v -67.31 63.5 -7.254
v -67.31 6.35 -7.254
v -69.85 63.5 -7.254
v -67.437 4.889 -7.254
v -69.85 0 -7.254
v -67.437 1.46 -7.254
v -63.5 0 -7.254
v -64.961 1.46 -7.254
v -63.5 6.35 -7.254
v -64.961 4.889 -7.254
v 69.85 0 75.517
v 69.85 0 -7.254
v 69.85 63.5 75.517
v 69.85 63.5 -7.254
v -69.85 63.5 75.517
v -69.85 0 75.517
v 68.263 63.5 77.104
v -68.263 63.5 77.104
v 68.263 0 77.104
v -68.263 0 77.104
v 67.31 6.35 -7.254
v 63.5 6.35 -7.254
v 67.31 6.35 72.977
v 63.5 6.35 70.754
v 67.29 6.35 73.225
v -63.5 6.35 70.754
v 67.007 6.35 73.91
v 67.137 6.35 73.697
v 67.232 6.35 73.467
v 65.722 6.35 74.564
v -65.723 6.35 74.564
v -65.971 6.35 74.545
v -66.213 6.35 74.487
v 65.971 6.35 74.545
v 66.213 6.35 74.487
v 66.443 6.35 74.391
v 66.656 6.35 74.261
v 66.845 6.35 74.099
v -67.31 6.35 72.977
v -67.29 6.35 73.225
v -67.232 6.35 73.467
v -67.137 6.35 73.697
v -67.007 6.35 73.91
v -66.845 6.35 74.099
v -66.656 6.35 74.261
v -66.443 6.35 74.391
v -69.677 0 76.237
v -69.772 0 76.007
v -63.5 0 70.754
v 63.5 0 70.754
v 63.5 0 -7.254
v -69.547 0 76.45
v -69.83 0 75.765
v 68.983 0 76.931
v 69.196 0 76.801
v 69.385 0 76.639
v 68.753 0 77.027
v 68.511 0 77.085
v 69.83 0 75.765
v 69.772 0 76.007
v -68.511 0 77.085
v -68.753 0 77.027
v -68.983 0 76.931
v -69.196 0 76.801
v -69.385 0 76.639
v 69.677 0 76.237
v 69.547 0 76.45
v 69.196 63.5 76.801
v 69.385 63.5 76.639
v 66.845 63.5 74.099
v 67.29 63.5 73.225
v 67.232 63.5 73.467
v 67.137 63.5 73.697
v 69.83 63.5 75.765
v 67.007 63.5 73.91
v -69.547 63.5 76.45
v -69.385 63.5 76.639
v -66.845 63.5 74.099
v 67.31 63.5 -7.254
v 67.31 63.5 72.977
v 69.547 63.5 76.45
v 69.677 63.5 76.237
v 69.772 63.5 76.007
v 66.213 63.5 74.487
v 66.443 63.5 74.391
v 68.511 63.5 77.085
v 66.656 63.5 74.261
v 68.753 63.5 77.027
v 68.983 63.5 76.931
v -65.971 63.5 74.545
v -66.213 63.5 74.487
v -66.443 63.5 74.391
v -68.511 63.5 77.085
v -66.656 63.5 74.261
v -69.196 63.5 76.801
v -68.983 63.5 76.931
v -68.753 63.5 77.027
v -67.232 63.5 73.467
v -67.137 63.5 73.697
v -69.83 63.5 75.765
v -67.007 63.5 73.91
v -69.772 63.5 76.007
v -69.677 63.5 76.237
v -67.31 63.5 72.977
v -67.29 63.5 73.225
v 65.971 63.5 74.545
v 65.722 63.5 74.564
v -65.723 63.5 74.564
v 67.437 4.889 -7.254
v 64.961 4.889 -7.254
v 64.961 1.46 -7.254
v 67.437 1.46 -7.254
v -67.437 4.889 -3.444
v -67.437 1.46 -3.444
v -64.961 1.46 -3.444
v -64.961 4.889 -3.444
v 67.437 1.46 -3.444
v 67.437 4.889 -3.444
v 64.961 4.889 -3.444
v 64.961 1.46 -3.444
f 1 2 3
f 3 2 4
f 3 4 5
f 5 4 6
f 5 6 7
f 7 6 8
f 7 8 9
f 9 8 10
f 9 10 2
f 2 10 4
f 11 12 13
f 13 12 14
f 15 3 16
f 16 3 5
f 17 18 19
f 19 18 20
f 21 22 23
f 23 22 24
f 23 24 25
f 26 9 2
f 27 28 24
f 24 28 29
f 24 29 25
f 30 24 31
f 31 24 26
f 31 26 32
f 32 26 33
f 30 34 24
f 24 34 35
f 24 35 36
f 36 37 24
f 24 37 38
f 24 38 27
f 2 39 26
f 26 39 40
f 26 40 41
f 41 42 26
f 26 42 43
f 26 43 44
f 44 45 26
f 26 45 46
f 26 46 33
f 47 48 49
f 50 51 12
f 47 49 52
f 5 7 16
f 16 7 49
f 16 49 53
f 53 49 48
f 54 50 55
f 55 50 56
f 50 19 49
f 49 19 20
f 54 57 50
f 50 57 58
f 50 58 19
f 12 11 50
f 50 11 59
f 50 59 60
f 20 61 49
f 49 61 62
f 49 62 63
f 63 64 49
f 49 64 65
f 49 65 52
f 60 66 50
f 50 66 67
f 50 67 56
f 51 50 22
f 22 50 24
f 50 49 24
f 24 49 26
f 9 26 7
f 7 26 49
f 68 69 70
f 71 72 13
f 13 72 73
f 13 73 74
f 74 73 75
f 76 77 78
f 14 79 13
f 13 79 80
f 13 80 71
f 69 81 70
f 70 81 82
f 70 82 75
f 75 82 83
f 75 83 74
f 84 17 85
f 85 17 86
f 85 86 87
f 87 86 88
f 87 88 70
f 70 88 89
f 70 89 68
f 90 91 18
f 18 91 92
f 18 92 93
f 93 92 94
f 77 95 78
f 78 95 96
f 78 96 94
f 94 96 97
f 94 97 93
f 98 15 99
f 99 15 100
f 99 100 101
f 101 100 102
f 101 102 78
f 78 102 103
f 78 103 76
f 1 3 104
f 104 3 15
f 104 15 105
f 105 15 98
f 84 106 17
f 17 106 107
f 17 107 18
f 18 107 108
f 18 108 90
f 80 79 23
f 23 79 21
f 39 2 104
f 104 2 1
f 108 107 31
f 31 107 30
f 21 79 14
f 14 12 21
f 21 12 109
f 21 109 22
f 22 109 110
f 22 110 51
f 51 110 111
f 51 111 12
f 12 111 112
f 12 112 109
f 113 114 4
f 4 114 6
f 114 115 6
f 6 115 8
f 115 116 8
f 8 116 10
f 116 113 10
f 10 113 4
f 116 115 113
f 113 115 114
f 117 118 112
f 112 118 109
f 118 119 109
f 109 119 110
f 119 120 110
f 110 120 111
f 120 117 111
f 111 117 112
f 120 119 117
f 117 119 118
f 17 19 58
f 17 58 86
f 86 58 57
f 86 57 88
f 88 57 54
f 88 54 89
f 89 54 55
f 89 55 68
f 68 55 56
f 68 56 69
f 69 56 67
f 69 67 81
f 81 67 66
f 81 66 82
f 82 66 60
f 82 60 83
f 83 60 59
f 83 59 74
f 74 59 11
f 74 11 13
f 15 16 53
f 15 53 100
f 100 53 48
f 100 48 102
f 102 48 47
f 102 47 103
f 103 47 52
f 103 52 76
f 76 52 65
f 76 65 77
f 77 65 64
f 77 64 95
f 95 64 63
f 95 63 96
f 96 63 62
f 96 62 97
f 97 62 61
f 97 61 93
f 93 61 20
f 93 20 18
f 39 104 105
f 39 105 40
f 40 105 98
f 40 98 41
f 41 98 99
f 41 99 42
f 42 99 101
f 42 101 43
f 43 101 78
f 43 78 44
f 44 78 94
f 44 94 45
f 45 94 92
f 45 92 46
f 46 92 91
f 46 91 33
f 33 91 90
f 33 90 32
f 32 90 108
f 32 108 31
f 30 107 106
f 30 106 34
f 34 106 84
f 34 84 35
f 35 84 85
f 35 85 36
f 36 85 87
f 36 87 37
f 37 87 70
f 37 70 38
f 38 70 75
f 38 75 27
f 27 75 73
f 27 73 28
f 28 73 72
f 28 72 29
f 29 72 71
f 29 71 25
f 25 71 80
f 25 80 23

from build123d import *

# Parameters (mm, degrees)
SKETCH1_W           = 139.7
SKETCH1_H           = 154.20848
BOSS_EXTRUDE1_DEPTH = 6.35
SKETCH2_W           = 127
SKETCH2_H           = 141.50848
CUT_EXTRUDE1_DEPTH  = 6.35
SKETCH3_W           = 139.7
SKETCH3_H           = 154.20848
SKETCH3_W_2         = 134.62
SKETCH3_H_2         = 149.12848
BOSS_EXTRUDE2_DEPTH = 57.15
SKETCH4_W           = 139.7
SKETCH4_H           = 69.85
CUT_EXTRUDE2_DEPTH  = 64.5
SKETCH5_W           = 2.4765
SKETCH5_H           = 3.429
CUT_EXTRUDE3_DEPTH  = 3.81
FILLET1_R           = 1.5875


with BuildPart() as part:
    # Sketch1 → Boss-Extrude1 (new body)
    with BuildSketch(Plane(origin=(0, 0, 0), x_dir=(1, 0, 0), z_dir=(0, 1, 0))):
        Rectangle(SKETCH1_W, SKETCH1_H)
    extrude(amount=BOSS_EXTRUDE1_DEPTH)

    # Sketch2 → Cut-Extrude1 (cut)
    with BuildSketch(Plane(origin=(0, 6.35, 0), x_dir=(1, 0, 0), z_dir=(0, 1, 0))):
        Rectangle(SKETCH2_W, SKETCH2_H)
    extrude(amount=-CUT_EXTRUDE1_DEPTH, mode=Mode.SUBTRACT)

    # Sketch3 → Boss-Extrude2 (add)
    with BuildSketch(Plane(origin=(0, 6.35, 0), x_dir=(1, 0, 0), z_dir=(0, 1, 0))):
        Rectangle(SKETCH3_W, SKETCH3_H)
        Rectangle(SKETCH3_W_2, SKETCH3_H_2, mode=Mode.SUBTRACT)
    extrude(amount=BOSS_EXTRUDE2_DEPTH)

    # Sketch4 → Cut-Extrude2 (cut, through all)
    with BuildSketch(Plane(origin=(0, 63.5, 0), x_dir=(1, 0, 0), z_dir=(0, 1, 0))):
        with Locations((0, 42.17924)):
            Rectangle(SKETCH4_W, SKETCH4_H)
    extrude(amount=-CUT_EXTRUDE2_DEPTH, mode=Mode.SUBTRACT)

    # Sketch5 → Cut-Extrude3 (cut)
    with BuildSketch(Plane(origin=(0, 0, -7.25424), x_dir=(-1, 0, 0), z_dir=(0, 0, -1))):
        with Locations((66.19875, 3.175)):
            Rectangle(SKETCH5_W, SKETCH5_H)
        with Locations((-66.19875, 3.175)):
            Rectangle(SKETCH5_W, SKETCH5_H)
    extrude(amount=-CUT_EXTRUDE3_DEPTH, mode=Mode.SUBTRACT)

    # Fillet1
    fillet1_edges = [part.edges().sort_by_distance(p)[0] for p in [
        (-67.31, 34.925, 74.56424),
        (67.31, 34.925, 74.56424),
        (69.85, 31.75, 77.10424),
        (-69.85, 31.75, 77.10424),
    ]]
    fillet(fillet1_edges, radius=FILLET1_R)


solid = part.part
